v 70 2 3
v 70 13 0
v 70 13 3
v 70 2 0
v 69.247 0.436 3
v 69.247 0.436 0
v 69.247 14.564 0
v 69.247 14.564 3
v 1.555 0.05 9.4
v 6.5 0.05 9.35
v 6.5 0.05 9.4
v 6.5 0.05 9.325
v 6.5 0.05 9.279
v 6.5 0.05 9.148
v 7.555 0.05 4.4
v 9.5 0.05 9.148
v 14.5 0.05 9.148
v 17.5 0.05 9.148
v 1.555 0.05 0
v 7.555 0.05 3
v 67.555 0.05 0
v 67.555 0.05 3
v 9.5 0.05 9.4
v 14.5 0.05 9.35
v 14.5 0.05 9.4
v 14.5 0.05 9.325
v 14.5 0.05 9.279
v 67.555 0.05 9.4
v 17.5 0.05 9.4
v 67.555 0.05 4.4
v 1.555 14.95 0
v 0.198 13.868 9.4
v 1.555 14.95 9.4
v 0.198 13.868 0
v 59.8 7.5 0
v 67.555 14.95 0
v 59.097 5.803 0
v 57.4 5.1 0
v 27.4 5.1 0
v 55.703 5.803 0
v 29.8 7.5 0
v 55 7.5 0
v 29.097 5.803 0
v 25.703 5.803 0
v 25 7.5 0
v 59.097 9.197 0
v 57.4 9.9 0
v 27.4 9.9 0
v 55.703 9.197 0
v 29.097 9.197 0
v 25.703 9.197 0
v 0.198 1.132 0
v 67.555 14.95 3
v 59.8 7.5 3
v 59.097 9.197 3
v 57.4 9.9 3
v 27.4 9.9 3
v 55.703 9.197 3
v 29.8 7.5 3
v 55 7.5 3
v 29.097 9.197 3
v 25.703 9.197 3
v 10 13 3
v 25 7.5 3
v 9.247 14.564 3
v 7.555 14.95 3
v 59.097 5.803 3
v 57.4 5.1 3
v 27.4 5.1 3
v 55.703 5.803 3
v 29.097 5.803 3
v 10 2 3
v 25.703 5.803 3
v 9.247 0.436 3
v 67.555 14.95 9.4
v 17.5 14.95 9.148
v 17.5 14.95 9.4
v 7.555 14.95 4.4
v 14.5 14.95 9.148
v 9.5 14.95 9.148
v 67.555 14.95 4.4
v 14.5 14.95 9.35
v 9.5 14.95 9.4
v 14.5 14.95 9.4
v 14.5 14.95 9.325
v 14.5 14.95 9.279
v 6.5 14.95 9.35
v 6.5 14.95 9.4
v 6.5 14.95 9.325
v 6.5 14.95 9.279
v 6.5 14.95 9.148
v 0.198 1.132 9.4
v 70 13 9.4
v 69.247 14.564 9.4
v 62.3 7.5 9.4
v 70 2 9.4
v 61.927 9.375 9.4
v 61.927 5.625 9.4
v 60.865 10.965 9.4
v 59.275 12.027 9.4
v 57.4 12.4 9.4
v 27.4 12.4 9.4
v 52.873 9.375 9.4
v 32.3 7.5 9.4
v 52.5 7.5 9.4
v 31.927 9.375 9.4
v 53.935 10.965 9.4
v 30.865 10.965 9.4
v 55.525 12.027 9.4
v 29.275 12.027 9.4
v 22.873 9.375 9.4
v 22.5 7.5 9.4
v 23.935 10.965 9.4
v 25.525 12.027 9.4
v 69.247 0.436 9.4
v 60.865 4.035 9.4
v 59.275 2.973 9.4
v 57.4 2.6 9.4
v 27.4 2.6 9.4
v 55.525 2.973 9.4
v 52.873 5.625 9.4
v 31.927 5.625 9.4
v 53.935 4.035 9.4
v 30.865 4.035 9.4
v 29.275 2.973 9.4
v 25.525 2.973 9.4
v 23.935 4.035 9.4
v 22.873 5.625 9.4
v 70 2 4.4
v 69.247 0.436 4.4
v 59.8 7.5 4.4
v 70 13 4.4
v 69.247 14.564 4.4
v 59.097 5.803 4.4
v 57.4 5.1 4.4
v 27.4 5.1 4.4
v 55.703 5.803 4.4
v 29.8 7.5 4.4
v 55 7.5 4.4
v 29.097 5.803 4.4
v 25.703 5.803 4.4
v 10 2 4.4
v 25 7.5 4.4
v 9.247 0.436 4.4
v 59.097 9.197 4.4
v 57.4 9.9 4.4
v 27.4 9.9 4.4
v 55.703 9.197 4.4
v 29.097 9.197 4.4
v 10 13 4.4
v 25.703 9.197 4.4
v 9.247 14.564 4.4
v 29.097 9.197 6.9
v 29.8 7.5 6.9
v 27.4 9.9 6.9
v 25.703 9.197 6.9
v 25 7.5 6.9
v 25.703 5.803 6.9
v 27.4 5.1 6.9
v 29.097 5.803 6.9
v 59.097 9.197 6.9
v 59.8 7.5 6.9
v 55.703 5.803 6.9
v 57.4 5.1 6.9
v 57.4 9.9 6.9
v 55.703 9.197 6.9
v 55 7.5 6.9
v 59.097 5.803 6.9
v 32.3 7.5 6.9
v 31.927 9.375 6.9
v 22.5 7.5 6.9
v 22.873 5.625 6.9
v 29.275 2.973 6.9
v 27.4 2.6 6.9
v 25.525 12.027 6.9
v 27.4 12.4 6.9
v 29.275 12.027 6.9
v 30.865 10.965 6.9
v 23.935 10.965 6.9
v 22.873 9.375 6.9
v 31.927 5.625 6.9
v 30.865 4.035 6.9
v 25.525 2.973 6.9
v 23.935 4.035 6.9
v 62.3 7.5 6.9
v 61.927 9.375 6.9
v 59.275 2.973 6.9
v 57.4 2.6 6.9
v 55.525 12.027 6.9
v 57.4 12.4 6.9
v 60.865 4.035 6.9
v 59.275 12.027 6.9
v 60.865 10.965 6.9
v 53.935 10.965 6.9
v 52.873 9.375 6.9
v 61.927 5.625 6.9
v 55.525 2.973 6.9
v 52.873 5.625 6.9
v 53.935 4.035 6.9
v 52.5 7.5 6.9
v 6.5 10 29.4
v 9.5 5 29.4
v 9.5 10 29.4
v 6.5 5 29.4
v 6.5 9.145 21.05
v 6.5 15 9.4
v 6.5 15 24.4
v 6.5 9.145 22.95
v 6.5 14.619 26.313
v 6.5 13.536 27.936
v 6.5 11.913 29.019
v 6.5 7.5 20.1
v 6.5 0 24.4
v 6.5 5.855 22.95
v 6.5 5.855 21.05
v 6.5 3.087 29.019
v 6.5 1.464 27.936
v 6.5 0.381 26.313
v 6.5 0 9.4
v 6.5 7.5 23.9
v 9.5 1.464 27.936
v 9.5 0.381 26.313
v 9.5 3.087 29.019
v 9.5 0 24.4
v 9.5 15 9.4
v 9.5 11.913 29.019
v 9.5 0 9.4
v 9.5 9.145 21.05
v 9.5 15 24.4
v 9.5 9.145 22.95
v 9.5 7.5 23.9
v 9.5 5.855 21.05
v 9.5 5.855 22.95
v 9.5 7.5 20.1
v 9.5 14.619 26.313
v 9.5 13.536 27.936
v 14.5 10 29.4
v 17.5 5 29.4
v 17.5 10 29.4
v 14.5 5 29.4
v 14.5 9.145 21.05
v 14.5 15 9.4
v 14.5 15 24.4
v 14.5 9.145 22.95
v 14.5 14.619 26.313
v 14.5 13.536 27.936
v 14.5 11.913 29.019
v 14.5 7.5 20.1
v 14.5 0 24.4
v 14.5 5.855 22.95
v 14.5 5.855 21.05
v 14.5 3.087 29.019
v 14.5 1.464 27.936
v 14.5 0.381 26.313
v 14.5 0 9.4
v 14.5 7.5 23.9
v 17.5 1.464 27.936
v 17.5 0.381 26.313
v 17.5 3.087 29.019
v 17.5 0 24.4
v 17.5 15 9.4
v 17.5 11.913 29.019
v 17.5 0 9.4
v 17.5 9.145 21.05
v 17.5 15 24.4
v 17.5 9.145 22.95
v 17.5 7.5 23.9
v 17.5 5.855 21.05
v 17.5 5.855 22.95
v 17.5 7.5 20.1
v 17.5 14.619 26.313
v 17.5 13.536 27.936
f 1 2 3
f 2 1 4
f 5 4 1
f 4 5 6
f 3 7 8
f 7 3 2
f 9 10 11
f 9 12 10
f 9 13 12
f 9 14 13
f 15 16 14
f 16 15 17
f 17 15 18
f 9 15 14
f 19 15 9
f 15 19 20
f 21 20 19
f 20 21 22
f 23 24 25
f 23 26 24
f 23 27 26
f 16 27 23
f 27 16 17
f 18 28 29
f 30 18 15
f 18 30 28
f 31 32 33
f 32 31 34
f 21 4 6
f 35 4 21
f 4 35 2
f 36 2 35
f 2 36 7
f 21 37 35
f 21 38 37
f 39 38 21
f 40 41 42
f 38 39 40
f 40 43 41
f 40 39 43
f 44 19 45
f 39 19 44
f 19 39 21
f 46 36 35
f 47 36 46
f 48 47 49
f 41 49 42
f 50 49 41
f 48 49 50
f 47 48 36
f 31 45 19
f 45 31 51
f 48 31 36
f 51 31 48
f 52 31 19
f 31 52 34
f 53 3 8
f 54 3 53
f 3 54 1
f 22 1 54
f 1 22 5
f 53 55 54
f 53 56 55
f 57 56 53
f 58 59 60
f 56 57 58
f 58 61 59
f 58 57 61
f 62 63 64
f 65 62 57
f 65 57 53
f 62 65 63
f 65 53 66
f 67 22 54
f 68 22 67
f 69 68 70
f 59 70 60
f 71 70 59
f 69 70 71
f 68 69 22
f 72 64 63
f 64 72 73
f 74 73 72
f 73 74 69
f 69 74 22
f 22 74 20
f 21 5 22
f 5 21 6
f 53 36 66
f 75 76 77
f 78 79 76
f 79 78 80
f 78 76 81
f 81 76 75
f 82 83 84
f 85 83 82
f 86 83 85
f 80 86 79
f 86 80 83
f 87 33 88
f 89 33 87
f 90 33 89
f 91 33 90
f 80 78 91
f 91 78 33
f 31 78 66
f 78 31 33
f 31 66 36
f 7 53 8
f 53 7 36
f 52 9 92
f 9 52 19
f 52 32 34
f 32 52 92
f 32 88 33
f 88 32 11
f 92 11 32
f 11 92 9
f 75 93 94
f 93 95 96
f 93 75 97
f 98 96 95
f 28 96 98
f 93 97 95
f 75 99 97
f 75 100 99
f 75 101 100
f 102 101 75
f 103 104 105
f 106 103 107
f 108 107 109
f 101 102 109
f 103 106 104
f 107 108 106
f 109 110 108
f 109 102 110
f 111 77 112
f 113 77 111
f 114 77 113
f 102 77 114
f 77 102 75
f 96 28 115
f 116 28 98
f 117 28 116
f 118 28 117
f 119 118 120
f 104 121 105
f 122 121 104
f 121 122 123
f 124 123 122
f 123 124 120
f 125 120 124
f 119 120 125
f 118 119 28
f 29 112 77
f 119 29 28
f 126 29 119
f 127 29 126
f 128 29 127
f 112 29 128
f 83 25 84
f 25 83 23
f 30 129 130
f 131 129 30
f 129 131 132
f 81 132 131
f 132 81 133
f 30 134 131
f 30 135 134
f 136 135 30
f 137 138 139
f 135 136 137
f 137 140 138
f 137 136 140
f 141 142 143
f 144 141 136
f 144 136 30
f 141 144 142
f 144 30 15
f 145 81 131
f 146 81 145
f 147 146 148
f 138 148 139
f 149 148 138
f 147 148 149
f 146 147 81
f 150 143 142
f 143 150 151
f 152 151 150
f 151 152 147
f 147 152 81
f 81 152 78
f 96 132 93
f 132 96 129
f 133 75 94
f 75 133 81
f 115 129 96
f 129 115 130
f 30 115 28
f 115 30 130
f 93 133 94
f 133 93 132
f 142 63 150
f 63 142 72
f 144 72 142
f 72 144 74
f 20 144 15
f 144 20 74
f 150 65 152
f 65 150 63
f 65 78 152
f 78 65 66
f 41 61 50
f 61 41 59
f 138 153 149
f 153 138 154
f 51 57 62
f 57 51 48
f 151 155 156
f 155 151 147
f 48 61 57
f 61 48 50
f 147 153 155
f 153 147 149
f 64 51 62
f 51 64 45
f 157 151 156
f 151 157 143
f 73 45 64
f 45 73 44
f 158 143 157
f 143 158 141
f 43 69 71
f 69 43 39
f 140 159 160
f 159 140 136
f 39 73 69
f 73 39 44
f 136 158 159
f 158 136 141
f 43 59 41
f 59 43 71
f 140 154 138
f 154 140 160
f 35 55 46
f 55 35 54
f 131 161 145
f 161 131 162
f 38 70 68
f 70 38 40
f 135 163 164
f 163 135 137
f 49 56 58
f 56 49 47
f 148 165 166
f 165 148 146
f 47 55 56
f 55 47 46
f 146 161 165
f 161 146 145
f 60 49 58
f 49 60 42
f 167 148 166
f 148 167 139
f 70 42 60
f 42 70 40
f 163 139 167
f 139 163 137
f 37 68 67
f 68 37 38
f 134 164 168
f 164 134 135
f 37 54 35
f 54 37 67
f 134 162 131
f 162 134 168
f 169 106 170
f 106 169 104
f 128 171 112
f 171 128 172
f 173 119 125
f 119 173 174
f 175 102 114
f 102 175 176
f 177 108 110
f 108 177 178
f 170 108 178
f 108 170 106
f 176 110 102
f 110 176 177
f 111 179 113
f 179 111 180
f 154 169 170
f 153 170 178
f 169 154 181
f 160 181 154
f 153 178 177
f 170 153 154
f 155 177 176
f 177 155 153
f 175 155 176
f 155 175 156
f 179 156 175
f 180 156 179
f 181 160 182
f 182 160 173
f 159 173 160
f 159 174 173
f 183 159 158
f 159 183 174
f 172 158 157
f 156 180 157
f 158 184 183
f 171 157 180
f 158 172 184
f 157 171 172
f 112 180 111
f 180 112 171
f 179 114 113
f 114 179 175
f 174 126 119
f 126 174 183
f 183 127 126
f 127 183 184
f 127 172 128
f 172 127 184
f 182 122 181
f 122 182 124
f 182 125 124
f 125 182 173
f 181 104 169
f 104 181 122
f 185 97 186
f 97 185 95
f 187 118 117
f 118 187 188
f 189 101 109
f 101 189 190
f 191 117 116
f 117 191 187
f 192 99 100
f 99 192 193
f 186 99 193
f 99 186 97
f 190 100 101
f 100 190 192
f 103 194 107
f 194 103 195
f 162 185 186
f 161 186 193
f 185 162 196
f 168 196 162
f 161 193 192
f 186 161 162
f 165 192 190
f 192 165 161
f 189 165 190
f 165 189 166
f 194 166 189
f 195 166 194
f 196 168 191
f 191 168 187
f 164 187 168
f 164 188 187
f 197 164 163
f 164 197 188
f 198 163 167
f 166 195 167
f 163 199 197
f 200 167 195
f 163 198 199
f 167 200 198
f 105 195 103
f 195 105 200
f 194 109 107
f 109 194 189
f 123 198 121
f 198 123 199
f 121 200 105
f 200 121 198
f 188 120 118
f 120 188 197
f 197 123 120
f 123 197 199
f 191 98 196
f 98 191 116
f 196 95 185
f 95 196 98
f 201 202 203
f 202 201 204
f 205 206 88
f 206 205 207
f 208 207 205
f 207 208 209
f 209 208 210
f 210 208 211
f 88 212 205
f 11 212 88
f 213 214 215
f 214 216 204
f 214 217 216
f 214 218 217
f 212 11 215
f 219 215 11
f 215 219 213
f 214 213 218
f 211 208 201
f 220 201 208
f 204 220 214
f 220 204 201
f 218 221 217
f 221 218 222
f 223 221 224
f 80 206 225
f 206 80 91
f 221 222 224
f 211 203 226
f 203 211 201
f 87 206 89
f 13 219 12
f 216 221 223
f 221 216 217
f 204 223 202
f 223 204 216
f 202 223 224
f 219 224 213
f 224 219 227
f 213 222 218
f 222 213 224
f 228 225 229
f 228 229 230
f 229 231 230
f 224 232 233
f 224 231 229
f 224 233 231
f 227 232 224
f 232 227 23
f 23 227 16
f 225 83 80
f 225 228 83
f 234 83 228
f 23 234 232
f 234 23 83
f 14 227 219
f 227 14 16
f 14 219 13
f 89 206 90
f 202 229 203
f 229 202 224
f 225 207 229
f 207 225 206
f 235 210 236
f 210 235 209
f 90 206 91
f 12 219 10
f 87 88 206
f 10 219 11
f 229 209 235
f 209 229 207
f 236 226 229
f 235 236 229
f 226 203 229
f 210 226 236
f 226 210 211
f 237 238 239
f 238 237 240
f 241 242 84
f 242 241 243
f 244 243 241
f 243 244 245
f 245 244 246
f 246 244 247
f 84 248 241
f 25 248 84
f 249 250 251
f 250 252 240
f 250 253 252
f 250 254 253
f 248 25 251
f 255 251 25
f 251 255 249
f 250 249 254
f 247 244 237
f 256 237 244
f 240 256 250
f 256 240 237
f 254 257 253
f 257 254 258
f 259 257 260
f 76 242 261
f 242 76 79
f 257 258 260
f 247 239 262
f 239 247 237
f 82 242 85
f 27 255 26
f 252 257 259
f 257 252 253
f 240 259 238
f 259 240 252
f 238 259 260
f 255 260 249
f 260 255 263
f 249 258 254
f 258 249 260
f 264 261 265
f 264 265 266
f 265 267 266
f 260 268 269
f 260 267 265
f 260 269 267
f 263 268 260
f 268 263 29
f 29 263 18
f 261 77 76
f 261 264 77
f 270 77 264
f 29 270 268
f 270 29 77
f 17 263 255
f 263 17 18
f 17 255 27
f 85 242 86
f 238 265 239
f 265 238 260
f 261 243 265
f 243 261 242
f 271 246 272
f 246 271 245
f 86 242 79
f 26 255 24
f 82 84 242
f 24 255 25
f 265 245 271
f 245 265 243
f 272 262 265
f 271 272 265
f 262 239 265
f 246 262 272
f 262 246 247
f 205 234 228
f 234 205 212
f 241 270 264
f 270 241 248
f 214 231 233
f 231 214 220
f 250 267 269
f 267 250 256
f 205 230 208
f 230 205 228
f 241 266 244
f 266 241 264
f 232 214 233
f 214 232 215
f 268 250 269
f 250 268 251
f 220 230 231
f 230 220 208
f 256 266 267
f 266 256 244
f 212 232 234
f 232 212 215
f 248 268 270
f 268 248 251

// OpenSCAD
slot = 1.4;
length = 60;
width = 15;
height_in = 3;
height_out = 5;
connector = 10;

difference(){
    union(){
        translate([2,2,1])
        minkowski(){
            cube([length - 4 + connector,width - 4,height_in - 2]);
            cylinder(h=2,r=2,center=true);
        }

        translate([0,0,height_in + slot])
        translate([2,2,1])
        minkowski(){
            cube([length - 4 + connector,width - 4,height_out - 2]);
            cylinder(h=2,r=2,center=true);
        }

        translate([2,2,1])
        minkowski(){
            cube([connector - 4, width - 4, height_in + height_out + slot - 2]);
            cylinder(h=2,r=2,center=true);
        }
    }

// holes
    translate([connector + 15 + 2.4,width / 2,0])
    cylinder(r=2.4,h=height_in+height_out+slot);
    
    translate([connector + 45 + 2.4,width / 2,0])
    cylinder(r=2.4,h=height_in+height_out+slot);
    
    translate([connector + 15 + 2.4,width / 2,height_in + slot + height_out /2])
    cylinder(r=4.9,h= height_out / 2);
    
    translate([connector + 45 + 2.4,width / 2,height_in + slot + height_out /2])
    cylinder(r=4.9,h= height_out / 2);

}

difference(){
    union(){
        translate([connector * 0.7,5,5 + height_in +slot])
        minkowski(){
            cube([2,width - 10,15]);
            rotate([0,90,0])
            cylinder(r=5,h=1,center=true);
        }

        translate([connector * 0.7 + 8,5,5 + height_in +slot])
        minkowski(){
            cube([2,width - 10,15]);
            rotate([0,90,0])
            cylinder(r=5,h=1,center=true);
        }
    }
    translate([0,width/2,22])
    rotate([0,90,0])
    cylinder(r=1.9,h=30);
}
